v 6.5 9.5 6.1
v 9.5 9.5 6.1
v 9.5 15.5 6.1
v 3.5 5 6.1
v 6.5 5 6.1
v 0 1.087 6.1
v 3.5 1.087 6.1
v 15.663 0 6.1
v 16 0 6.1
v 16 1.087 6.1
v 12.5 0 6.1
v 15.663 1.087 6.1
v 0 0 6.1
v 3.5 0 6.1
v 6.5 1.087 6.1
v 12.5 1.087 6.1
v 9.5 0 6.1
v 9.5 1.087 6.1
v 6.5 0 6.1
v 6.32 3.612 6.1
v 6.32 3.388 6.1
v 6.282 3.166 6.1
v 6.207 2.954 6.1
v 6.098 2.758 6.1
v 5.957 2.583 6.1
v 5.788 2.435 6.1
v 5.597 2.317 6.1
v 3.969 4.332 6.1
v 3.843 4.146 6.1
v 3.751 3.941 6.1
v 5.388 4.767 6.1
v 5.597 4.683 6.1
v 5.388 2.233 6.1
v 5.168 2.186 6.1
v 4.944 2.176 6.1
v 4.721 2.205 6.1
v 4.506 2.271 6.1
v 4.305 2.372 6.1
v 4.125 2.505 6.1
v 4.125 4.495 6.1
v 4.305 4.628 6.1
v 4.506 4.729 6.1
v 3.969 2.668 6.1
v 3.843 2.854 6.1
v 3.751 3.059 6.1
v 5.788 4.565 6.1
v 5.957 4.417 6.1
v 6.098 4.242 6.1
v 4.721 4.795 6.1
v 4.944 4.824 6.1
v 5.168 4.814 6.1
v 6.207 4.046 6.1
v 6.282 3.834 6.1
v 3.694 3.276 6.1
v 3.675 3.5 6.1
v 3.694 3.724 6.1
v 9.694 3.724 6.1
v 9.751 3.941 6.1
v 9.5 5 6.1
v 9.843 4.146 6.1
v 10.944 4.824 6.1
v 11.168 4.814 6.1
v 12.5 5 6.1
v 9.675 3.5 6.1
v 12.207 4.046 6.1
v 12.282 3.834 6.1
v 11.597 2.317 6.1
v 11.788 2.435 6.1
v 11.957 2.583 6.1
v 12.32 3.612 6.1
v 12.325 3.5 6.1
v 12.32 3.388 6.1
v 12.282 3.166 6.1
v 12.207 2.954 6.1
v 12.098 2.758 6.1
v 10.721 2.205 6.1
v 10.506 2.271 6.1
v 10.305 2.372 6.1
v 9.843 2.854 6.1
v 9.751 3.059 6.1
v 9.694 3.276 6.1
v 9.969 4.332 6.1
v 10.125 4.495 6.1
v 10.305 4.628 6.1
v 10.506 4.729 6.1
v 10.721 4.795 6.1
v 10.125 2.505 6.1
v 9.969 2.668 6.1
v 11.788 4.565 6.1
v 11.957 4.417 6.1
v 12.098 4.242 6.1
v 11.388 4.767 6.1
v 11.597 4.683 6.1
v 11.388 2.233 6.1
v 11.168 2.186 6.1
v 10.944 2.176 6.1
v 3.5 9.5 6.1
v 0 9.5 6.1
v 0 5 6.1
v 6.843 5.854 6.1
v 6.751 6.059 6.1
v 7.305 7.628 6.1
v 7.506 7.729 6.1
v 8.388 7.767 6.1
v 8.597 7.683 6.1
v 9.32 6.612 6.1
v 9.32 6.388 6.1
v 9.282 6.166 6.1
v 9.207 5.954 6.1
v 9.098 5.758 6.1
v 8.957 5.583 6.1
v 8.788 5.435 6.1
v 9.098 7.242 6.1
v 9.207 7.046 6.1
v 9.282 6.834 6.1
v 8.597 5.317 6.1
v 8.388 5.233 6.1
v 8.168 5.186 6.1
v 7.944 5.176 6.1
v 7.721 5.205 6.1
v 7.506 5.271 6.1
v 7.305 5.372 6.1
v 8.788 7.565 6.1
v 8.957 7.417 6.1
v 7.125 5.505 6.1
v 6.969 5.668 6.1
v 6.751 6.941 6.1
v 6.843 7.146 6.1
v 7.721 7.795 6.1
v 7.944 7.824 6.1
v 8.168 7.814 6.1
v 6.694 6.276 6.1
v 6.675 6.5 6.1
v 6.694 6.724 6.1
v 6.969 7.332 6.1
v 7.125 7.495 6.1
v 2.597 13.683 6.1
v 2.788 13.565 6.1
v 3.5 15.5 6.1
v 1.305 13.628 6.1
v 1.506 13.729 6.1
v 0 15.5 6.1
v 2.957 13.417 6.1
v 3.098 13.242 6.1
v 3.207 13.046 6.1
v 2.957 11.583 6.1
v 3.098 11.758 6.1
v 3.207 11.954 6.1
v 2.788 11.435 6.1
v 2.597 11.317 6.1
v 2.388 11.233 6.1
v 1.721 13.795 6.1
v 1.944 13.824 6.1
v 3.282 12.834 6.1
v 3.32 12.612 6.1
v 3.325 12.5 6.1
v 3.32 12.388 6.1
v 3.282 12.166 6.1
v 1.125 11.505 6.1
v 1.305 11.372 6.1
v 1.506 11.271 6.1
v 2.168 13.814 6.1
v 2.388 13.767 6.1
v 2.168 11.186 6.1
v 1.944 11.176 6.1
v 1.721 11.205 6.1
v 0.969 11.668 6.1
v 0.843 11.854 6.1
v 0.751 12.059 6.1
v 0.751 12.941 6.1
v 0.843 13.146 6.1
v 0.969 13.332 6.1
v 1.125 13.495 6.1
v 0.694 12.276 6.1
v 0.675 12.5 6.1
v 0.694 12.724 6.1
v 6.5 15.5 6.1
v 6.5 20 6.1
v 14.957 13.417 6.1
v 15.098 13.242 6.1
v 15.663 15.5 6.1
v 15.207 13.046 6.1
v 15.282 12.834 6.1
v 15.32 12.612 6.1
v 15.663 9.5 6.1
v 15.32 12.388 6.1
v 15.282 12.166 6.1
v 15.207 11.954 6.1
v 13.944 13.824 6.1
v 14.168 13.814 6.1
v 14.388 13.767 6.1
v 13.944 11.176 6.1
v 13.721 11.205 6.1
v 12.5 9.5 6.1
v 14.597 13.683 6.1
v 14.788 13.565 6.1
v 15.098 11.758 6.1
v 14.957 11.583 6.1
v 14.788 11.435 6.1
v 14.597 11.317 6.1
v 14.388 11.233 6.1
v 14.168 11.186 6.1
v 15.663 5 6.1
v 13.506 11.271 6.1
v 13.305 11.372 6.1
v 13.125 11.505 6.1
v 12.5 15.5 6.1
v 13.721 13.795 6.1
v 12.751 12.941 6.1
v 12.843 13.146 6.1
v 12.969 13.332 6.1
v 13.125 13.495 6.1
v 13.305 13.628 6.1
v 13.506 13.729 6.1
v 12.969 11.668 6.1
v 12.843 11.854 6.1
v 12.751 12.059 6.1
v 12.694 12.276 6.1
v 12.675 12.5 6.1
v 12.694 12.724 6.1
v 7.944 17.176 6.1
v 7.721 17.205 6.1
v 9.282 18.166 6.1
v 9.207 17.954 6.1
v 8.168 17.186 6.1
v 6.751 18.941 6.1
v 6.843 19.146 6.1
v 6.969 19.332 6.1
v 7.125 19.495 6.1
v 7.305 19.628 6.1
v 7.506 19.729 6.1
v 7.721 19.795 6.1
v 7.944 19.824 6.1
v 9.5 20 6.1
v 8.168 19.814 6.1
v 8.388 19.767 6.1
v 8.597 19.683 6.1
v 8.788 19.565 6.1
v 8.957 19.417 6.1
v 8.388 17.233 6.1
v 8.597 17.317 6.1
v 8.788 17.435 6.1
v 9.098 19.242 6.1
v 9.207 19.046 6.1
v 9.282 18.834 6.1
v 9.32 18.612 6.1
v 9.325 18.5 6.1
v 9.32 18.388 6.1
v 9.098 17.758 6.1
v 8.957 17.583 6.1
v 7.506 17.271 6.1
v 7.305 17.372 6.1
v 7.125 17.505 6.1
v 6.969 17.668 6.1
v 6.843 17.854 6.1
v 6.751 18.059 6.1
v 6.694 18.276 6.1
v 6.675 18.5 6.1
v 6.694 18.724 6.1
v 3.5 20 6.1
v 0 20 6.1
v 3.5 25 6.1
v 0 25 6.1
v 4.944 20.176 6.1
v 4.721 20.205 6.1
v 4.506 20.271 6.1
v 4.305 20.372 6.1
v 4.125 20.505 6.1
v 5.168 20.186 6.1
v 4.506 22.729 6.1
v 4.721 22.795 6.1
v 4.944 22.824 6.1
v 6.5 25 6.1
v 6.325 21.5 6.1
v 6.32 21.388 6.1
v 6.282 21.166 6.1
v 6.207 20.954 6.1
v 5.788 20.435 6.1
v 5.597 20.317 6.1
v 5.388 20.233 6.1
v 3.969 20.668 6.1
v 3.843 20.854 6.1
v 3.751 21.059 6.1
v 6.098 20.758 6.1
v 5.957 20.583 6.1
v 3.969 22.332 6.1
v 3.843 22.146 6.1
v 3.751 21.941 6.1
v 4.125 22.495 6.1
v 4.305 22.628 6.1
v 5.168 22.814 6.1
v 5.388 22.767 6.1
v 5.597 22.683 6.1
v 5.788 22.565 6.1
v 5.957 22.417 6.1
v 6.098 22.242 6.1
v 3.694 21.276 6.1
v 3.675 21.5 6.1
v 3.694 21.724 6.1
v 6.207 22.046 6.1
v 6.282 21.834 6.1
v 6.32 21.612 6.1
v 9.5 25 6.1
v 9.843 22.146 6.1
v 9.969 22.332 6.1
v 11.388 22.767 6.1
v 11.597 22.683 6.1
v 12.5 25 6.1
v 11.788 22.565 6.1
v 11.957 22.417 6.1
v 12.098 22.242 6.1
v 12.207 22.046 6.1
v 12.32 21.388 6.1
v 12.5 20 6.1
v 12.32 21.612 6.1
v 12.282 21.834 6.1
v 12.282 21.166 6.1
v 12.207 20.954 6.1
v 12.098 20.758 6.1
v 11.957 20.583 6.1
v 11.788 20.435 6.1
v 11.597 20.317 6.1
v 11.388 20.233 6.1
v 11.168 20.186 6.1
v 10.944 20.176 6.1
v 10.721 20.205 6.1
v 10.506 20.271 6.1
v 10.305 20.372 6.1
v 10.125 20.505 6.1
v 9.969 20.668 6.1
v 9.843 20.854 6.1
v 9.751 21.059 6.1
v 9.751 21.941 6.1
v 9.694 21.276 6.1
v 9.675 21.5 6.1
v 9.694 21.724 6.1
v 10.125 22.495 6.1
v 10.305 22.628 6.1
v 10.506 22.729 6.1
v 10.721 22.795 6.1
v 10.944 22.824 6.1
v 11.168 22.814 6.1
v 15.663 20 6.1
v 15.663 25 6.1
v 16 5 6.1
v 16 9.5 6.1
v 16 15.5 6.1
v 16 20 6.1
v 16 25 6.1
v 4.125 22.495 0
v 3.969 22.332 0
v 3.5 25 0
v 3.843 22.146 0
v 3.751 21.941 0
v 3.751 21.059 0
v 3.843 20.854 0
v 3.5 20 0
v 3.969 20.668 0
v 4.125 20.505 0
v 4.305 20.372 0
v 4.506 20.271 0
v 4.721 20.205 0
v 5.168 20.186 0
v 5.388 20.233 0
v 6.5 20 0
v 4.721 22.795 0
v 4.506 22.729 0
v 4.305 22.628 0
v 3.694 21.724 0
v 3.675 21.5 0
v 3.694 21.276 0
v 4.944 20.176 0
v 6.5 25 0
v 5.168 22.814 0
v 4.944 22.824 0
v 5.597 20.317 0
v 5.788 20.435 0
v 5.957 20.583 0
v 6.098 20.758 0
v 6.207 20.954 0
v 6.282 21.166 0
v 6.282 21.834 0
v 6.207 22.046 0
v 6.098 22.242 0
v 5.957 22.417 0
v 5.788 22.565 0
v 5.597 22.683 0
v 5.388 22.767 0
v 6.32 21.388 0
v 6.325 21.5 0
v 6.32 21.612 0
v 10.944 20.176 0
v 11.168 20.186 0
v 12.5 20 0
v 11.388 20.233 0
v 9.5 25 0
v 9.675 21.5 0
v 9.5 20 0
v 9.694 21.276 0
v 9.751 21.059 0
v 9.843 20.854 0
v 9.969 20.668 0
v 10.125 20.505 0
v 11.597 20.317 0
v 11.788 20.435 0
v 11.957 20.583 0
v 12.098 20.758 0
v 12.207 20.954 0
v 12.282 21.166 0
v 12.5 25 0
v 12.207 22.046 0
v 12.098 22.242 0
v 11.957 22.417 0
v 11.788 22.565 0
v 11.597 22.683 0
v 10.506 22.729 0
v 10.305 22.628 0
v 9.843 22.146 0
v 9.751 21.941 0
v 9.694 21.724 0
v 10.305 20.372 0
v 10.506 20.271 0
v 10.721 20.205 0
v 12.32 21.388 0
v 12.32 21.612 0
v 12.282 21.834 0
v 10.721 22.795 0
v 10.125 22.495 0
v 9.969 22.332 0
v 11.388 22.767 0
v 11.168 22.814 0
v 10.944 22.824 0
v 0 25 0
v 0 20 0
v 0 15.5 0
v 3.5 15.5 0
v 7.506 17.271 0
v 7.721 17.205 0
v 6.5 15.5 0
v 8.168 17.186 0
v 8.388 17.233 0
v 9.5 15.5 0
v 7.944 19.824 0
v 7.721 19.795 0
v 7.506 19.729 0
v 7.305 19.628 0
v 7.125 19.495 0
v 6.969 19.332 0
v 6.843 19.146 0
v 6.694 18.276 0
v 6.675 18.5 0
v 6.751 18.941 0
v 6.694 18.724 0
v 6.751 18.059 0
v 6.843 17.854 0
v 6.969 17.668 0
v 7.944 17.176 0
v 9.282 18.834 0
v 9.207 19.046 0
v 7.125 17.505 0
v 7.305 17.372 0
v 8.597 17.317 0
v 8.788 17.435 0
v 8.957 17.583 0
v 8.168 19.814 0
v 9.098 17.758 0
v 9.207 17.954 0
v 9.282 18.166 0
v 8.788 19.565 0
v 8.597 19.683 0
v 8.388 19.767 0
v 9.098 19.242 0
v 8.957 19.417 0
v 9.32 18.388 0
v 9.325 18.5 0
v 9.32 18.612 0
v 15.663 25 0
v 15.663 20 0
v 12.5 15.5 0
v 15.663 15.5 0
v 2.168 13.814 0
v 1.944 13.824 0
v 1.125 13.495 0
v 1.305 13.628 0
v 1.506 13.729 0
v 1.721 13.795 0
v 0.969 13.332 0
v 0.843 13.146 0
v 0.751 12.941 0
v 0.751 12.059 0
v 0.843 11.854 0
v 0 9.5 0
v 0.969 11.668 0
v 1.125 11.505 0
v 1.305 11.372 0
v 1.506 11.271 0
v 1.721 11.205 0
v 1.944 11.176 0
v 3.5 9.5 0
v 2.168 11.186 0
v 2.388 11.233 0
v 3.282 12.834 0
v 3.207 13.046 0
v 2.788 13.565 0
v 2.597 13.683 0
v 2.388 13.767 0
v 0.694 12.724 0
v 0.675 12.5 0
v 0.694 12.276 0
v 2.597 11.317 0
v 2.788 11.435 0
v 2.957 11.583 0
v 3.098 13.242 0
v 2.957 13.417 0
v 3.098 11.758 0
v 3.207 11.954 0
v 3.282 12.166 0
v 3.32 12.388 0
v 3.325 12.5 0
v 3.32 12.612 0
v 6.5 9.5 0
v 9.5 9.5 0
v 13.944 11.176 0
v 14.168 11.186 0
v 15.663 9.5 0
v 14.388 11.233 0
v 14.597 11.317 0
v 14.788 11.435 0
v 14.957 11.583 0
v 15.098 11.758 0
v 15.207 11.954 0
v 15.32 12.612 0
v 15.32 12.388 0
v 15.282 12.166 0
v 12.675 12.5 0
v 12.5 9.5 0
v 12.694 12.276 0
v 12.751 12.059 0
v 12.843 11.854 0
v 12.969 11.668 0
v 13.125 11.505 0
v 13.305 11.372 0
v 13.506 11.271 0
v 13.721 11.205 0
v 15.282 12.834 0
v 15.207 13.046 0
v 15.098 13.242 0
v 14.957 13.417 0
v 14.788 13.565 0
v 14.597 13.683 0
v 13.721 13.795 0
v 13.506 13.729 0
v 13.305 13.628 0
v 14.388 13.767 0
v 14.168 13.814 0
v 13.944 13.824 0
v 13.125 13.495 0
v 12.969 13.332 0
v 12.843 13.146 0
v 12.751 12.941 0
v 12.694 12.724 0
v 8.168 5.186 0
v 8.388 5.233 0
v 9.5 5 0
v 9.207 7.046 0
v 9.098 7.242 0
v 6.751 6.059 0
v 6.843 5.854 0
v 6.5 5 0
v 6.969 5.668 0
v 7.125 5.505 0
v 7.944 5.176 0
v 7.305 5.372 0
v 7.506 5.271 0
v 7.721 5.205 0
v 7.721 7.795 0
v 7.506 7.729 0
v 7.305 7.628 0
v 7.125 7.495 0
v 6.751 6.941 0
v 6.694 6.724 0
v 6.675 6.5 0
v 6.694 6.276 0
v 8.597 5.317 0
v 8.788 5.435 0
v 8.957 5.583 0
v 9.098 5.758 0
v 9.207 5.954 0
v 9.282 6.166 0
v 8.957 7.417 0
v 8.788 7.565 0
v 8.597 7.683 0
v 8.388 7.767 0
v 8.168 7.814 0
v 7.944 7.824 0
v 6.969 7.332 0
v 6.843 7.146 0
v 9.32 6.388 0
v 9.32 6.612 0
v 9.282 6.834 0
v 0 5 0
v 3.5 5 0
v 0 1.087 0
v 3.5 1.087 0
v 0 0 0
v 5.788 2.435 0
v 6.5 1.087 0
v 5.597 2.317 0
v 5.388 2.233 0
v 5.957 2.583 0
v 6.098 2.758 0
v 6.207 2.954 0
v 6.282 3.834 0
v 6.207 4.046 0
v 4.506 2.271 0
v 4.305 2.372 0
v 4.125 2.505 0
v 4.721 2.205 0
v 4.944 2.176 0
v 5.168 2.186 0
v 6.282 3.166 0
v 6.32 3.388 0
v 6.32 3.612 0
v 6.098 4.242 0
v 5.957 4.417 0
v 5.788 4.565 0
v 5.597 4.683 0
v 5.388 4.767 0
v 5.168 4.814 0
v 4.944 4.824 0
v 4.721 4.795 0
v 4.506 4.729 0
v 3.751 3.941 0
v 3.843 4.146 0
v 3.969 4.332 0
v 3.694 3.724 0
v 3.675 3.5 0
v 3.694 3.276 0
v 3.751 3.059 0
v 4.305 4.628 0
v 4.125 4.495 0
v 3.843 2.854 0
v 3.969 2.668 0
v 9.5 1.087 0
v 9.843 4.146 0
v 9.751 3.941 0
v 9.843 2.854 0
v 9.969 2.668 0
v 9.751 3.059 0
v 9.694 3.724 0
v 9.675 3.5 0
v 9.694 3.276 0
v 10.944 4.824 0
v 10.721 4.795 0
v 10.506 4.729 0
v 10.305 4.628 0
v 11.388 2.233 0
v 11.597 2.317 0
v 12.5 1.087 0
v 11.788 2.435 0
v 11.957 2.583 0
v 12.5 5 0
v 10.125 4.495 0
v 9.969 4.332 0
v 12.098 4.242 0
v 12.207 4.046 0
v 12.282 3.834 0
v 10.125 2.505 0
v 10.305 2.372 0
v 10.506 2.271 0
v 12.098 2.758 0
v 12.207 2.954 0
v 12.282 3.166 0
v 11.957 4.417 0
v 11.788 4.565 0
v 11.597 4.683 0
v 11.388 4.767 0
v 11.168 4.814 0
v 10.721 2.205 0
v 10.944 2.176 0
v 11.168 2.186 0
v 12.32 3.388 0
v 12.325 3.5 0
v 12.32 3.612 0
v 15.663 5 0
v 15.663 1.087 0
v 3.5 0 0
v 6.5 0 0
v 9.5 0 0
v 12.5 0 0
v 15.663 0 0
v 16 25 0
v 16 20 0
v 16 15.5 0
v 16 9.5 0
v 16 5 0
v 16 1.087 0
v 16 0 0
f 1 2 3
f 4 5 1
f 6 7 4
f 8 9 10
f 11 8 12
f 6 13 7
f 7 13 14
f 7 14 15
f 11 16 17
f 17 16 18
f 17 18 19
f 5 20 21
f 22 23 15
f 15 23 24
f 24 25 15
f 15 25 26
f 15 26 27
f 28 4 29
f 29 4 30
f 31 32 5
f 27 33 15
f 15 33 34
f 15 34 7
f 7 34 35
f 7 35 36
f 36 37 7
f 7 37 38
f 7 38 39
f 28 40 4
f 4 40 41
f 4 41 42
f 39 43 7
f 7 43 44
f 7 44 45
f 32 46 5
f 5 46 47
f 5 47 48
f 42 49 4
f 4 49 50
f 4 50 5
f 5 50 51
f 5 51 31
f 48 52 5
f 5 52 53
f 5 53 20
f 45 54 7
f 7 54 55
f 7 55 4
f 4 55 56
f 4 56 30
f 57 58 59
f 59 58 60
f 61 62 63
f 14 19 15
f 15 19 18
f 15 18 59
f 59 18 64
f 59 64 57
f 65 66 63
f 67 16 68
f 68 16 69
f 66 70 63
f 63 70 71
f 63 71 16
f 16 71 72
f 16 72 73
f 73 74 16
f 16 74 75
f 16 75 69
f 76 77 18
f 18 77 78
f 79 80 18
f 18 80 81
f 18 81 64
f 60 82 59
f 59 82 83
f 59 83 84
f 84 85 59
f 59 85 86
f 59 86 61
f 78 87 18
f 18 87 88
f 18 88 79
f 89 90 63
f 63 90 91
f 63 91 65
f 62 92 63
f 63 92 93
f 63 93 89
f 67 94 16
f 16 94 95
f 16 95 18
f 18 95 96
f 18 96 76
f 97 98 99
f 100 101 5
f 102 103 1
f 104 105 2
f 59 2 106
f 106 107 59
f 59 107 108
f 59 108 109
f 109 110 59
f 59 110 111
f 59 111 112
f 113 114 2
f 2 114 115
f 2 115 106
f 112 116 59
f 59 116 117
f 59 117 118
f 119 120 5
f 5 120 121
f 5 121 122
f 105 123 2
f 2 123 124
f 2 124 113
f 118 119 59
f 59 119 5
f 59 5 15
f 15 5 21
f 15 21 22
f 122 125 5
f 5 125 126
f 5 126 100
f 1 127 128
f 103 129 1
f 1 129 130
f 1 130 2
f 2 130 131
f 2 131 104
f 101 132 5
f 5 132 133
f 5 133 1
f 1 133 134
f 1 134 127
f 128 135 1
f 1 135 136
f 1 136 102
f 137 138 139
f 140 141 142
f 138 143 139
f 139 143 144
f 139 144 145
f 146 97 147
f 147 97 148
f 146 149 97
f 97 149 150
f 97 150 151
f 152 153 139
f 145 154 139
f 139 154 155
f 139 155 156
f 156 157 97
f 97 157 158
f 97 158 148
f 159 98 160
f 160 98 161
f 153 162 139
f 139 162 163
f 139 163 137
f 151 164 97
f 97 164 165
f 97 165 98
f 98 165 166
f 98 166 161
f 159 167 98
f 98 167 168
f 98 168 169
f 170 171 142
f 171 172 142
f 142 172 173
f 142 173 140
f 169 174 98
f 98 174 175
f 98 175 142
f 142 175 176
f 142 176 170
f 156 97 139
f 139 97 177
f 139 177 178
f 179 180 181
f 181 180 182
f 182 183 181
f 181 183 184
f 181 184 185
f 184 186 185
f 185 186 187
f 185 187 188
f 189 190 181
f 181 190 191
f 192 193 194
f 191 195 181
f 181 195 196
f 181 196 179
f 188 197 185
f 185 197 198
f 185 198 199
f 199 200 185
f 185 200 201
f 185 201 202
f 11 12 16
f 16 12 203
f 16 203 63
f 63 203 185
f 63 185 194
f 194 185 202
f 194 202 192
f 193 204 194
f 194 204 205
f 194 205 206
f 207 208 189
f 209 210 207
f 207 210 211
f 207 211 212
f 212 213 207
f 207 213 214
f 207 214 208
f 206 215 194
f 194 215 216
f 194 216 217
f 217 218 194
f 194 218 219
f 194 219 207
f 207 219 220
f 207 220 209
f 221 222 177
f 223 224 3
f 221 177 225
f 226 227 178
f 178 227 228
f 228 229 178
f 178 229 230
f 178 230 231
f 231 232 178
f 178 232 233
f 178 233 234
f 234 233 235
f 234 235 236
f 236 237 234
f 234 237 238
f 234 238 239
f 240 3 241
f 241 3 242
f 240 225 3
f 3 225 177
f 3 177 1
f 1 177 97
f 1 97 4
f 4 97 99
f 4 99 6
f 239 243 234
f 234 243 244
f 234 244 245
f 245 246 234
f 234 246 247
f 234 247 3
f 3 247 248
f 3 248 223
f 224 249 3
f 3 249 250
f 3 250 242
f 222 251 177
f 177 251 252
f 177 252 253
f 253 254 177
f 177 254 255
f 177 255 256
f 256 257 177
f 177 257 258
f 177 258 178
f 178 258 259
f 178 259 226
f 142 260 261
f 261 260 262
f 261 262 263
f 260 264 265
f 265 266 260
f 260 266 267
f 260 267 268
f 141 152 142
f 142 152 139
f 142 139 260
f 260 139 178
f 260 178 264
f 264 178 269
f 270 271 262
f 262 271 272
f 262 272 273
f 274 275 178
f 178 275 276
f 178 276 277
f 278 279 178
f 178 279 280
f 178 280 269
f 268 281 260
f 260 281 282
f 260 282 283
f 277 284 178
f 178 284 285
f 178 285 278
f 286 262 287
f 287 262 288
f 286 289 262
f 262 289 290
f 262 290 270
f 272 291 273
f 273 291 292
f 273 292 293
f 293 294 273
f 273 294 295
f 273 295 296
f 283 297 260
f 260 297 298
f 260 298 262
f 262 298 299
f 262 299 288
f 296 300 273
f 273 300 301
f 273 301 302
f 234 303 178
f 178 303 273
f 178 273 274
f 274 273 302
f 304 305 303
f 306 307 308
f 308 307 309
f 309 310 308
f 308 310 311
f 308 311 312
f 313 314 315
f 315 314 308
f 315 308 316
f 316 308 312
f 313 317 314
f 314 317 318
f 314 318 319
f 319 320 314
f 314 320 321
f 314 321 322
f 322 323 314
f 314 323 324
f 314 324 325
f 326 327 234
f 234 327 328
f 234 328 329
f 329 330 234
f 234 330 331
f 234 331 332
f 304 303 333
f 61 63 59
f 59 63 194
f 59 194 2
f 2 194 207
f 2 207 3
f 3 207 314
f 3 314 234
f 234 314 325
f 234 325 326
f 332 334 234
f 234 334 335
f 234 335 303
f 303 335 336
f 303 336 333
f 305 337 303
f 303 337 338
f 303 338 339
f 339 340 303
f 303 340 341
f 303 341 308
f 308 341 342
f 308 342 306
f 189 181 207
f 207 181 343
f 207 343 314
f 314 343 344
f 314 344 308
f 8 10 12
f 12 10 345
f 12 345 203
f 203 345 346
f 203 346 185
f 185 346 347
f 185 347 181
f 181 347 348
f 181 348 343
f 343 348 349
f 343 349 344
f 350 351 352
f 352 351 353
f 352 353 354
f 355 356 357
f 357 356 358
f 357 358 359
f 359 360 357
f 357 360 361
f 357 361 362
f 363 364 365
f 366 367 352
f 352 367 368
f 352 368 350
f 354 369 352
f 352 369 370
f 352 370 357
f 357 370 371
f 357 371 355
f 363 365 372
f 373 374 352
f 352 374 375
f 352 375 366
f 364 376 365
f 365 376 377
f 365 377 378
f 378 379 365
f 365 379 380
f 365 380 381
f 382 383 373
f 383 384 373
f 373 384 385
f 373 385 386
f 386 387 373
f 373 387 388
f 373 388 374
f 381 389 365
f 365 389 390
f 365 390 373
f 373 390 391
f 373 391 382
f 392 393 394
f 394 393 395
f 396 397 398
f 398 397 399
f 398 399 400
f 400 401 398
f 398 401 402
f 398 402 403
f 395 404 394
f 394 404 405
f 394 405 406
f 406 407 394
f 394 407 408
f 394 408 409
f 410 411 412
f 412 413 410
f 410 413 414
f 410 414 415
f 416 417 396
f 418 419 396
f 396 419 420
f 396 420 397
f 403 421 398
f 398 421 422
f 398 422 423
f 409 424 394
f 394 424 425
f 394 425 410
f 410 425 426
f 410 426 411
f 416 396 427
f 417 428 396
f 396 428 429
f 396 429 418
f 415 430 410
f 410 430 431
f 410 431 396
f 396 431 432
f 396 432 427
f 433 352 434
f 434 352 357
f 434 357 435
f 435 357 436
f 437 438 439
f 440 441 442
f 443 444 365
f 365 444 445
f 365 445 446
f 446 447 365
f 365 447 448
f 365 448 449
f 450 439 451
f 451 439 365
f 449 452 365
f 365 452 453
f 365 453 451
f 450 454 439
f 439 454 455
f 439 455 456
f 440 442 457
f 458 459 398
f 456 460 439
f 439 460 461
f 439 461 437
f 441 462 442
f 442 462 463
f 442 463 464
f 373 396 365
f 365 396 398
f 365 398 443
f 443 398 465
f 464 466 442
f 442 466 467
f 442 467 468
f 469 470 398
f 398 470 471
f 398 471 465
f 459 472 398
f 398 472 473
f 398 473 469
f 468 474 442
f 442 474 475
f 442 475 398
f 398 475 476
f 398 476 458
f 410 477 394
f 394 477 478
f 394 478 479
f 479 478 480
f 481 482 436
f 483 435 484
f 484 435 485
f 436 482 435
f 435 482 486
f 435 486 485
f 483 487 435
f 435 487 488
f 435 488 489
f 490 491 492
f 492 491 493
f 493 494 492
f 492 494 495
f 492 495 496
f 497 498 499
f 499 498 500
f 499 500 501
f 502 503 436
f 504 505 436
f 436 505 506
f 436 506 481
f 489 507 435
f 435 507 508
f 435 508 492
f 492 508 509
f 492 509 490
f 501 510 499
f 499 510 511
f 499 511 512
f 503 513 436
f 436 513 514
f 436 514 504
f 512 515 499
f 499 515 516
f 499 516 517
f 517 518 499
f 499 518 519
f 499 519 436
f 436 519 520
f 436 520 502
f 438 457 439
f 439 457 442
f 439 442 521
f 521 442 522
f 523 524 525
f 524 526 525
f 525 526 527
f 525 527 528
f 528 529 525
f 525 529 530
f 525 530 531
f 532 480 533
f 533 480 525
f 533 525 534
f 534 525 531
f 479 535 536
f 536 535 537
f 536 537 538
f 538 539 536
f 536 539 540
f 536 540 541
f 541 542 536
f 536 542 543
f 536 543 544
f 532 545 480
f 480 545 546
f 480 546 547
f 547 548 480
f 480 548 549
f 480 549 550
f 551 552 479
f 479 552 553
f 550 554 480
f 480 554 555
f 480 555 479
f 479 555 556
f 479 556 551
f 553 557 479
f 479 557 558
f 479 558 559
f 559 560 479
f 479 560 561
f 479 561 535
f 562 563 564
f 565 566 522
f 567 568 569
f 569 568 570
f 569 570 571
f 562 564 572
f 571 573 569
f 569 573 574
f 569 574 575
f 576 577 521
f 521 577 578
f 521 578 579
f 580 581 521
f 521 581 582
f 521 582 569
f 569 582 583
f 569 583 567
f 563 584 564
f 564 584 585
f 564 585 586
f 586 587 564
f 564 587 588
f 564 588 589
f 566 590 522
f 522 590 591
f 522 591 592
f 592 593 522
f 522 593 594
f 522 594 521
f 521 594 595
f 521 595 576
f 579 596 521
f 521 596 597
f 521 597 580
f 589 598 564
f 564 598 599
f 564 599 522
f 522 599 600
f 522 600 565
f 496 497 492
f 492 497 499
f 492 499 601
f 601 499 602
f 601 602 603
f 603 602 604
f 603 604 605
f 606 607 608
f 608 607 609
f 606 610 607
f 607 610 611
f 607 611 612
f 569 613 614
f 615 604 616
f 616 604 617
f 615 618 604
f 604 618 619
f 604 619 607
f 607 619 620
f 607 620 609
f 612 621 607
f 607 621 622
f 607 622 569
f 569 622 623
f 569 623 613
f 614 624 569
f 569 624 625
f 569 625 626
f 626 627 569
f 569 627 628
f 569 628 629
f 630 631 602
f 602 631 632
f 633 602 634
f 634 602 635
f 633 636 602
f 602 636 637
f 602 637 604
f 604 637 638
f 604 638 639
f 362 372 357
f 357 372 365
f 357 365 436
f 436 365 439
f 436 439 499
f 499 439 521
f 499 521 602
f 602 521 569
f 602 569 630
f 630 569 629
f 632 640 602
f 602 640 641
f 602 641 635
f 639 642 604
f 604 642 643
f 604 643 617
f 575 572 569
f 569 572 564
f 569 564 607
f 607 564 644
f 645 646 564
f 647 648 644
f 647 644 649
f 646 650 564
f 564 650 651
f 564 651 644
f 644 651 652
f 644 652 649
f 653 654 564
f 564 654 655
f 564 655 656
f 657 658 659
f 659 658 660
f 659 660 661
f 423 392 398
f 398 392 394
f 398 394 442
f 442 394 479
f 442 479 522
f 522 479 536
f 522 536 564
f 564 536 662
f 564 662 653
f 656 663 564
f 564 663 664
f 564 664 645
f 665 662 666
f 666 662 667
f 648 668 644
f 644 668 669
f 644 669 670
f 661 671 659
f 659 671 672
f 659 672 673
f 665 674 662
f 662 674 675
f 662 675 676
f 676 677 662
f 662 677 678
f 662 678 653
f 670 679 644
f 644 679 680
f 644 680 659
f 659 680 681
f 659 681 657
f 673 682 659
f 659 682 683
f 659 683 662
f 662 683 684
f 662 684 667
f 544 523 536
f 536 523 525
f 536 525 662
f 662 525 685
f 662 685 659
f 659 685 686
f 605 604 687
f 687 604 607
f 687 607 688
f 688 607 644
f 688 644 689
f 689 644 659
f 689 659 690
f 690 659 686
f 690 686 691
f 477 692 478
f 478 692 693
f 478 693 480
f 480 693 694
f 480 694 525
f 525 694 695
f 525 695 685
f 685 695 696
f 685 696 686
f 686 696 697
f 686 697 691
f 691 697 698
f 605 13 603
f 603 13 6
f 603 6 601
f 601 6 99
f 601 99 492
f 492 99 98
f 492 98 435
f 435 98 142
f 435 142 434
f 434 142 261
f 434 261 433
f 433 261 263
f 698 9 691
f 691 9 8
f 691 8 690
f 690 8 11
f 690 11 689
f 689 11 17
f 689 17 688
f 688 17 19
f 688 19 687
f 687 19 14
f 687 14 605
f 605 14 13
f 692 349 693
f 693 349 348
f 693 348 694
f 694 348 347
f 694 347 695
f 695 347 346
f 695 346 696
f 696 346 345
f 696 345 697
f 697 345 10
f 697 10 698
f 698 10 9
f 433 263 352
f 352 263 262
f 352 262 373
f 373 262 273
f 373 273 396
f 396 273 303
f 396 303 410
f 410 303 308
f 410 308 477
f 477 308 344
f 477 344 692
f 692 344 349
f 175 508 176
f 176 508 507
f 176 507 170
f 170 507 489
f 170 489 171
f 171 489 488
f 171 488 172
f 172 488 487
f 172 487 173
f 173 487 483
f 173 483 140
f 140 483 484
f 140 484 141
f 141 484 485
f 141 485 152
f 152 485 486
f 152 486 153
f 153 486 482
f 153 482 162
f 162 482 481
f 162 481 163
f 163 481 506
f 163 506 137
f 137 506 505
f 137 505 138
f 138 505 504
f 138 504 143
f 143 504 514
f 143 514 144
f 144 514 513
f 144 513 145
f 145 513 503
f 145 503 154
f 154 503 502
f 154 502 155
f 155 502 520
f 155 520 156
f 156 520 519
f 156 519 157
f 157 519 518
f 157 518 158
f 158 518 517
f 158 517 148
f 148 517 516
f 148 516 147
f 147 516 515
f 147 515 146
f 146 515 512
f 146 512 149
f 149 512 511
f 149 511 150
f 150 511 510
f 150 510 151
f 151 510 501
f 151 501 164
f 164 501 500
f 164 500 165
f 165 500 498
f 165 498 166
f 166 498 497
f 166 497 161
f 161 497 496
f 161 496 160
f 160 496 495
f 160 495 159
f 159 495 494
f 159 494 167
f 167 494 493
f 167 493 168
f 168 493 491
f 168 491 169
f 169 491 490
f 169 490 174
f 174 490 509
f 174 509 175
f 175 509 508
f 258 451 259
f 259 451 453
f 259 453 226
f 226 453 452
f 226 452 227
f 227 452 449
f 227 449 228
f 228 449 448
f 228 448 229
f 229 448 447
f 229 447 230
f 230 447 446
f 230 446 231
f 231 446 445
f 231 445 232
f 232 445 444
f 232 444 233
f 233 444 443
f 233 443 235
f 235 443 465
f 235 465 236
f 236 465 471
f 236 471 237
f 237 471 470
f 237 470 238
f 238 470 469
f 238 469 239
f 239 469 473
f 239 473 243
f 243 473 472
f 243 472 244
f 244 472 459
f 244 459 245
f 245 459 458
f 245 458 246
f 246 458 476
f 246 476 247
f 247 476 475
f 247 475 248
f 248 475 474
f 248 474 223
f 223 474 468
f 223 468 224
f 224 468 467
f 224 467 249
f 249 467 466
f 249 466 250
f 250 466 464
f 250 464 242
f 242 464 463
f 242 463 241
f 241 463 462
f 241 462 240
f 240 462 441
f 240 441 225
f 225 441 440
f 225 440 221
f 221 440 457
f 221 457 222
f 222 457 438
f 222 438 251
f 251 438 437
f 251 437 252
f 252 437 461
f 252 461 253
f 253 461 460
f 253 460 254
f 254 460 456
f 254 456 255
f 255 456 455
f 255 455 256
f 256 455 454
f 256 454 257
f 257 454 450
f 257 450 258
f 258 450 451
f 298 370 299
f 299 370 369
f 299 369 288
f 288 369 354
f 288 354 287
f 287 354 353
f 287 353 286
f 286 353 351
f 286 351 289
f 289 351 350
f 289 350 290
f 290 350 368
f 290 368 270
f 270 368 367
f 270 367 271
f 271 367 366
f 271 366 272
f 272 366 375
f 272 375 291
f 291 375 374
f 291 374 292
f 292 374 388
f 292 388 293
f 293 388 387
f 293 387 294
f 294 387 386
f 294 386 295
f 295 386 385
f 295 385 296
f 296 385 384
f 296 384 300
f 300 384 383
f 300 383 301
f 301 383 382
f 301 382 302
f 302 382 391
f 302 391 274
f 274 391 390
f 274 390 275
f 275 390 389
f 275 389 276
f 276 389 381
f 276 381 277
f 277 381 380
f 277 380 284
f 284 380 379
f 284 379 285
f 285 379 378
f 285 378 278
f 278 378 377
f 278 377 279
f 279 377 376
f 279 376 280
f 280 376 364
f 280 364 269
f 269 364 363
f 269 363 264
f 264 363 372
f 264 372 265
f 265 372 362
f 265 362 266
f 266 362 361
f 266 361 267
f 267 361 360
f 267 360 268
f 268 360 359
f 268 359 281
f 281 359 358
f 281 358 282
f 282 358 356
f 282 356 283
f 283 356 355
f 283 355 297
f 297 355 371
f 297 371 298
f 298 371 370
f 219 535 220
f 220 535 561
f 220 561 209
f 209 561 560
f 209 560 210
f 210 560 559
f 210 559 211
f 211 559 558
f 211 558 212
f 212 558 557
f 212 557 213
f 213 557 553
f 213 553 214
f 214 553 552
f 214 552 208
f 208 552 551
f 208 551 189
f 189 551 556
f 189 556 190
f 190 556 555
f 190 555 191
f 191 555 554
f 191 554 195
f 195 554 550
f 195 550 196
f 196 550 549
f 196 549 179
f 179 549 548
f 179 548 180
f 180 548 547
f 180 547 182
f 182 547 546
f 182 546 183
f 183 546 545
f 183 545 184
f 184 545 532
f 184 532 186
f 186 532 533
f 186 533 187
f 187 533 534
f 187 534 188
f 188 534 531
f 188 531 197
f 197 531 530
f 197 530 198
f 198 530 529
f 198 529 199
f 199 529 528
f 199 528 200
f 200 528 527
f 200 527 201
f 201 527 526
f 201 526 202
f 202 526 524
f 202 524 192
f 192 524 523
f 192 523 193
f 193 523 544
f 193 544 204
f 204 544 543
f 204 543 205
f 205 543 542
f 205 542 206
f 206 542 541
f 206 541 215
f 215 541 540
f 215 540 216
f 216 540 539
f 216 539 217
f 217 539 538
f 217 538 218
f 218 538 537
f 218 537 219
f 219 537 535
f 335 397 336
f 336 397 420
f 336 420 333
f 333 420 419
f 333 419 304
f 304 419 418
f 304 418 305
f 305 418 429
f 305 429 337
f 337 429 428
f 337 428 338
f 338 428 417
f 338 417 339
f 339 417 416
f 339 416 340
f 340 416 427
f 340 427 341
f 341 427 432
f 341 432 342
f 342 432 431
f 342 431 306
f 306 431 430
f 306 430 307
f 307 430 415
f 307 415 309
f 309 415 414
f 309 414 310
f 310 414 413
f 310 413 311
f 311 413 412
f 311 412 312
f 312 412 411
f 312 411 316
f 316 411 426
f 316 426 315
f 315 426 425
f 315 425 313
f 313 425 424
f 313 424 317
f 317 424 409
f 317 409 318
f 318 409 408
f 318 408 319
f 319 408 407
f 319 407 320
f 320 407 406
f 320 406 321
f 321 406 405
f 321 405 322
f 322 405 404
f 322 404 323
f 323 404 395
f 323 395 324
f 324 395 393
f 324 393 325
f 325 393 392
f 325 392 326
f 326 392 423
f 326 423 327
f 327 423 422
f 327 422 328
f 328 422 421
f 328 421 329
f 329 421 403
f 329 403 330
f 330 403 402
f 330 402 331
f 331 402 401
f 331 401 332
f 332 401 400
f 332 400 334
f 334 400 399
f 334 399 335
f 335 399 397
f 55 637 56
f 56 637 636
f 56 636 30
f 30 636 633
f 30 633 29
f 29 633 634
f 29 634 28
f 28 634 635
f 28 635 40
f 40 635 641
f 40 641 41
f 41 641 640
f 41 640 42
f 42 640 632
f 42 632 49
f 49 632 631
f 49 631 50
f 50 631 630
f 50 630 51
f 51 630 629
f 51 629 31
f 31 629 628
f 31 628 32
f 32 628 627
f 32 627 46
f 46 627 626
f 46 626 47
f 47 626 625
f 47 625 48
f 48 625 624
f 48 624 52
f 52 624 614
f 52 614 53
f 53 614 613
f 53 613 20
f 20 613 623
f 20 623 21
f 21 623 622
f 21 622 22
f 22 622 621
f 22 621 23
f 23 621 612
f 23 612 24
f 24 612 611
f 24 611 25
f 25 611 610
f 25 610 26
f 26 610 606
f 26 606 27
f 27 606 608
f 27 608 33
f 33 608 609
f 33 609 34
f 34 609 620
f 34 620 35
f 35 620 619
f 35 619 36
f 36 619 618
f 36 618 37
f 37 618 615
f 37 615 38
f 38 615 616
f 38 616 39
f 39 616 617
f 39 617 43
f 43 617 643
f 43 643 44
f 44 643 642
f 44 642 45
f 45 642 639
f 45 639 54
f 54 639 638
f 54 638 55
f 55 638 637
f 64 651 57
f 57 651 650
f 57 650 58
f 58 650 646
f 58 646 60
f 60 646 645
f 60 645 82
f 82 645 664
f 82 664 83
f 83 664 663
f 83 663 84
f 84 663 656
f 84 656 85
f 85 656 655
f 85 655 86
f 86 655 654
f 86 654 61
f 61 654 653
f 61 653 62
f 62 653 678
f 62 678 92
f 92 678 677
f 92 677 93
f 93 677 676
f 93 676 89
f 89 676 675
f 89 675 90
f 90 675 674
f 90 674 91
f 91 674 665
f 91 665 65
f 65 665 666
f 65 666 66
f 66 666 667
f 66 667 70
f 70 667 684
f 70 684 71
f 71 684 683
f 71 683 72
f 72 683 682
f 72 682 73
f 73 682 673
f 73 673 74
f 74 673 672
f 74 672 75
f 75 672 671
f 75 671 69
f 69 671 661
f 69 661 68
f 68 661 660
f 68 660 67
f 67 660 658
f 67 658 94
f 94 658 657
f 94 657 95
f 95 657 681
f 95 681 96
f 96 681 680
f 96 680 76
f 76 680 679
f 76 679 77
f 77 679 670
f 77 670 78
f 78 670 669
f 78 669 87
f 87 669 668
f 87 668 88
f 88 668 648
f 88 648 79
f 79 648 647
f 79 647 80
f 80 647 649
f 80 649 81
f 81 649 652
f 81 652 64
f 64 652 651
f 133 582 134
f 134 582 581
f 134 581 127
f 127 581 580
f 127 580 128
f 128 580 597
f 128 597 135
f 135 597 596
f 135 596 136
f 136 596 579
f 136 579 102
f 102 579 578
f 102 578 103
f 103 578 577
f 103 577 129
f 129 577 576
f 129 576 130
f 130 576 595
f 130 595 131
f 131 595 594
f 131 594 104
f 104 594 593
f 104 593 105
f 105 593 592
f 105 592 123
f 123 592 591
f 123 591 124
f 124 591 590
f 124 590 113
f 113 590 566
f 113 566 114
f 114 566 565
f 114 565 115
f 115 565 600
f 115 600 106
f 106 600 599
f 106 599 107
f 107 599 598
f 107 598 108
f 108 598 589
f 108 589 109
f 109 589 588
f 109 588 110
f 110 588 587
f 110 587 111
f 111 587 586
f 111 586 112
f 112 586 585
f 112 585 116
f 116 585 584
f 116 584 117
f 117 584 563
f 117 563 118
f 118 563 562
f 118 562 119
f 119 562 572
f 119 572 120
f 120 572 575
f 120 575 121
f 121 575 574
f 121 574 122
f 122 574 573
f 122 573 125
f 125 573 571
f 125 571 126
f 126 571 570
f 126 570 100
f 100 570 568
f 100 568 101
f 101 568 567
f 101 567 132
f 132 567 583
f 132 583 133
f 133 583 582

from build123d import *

# Parameters (mm, degrees)
SKETCH1_W           = 16
SKETCH1_H           = 25
SKETCH1_R           = 1.325
BOSS_EXTRUDE1_DEPTH = 6.1


with BuildPart() as part:
    # Sketch1 → Boss-Extrude1 (new body)
    with BuildSketch(Plane.XY):
        with Locations((8, 12.5)):
            Rectangle(SKETCH1_W, SKETCH1_H)
        with Locations((2, 12.5)):
            Circle(SKETCH1_R, mode=Mode.SUBTRACT)
        with Locations((8, 18.5)):
            Circle(SKETCH1_R, mode=Mode.SUBTRACT)
        with Locations((5, 21.5)):
            Circle(SKETCH1_R, mode=Mode.SUBTRACT)
        with Locations(Location((14, 12.5, 0), (0, 0, 180))):
            Circle(SKETCH1_R, mode=Mode.SUBTRACT)
        with Locations(Location((11, 21.5, 0), (0, 0, 180))):
            Circle(SKETCH1_R, mode=Mode.SUBTRACT)
        with Locations(Location((5, 3.5, 0), (0, 0, 180))):
            Circle(SKETCH1_R, mode=Mode.SUBTRACT)
        with Locations((11, 3.5)):
            Circle(SKETCH1_R, mode=Mode.SUBTRACT)
        with Locations(Location((8, 6.5, 0), (0, 0, 180))):
            Circle(SKETCH1_R, mode=Mode.SUBTRACT)
    extrude(amount=BOSS_EXTRUDE1_DEPTH)


solid = part.part
